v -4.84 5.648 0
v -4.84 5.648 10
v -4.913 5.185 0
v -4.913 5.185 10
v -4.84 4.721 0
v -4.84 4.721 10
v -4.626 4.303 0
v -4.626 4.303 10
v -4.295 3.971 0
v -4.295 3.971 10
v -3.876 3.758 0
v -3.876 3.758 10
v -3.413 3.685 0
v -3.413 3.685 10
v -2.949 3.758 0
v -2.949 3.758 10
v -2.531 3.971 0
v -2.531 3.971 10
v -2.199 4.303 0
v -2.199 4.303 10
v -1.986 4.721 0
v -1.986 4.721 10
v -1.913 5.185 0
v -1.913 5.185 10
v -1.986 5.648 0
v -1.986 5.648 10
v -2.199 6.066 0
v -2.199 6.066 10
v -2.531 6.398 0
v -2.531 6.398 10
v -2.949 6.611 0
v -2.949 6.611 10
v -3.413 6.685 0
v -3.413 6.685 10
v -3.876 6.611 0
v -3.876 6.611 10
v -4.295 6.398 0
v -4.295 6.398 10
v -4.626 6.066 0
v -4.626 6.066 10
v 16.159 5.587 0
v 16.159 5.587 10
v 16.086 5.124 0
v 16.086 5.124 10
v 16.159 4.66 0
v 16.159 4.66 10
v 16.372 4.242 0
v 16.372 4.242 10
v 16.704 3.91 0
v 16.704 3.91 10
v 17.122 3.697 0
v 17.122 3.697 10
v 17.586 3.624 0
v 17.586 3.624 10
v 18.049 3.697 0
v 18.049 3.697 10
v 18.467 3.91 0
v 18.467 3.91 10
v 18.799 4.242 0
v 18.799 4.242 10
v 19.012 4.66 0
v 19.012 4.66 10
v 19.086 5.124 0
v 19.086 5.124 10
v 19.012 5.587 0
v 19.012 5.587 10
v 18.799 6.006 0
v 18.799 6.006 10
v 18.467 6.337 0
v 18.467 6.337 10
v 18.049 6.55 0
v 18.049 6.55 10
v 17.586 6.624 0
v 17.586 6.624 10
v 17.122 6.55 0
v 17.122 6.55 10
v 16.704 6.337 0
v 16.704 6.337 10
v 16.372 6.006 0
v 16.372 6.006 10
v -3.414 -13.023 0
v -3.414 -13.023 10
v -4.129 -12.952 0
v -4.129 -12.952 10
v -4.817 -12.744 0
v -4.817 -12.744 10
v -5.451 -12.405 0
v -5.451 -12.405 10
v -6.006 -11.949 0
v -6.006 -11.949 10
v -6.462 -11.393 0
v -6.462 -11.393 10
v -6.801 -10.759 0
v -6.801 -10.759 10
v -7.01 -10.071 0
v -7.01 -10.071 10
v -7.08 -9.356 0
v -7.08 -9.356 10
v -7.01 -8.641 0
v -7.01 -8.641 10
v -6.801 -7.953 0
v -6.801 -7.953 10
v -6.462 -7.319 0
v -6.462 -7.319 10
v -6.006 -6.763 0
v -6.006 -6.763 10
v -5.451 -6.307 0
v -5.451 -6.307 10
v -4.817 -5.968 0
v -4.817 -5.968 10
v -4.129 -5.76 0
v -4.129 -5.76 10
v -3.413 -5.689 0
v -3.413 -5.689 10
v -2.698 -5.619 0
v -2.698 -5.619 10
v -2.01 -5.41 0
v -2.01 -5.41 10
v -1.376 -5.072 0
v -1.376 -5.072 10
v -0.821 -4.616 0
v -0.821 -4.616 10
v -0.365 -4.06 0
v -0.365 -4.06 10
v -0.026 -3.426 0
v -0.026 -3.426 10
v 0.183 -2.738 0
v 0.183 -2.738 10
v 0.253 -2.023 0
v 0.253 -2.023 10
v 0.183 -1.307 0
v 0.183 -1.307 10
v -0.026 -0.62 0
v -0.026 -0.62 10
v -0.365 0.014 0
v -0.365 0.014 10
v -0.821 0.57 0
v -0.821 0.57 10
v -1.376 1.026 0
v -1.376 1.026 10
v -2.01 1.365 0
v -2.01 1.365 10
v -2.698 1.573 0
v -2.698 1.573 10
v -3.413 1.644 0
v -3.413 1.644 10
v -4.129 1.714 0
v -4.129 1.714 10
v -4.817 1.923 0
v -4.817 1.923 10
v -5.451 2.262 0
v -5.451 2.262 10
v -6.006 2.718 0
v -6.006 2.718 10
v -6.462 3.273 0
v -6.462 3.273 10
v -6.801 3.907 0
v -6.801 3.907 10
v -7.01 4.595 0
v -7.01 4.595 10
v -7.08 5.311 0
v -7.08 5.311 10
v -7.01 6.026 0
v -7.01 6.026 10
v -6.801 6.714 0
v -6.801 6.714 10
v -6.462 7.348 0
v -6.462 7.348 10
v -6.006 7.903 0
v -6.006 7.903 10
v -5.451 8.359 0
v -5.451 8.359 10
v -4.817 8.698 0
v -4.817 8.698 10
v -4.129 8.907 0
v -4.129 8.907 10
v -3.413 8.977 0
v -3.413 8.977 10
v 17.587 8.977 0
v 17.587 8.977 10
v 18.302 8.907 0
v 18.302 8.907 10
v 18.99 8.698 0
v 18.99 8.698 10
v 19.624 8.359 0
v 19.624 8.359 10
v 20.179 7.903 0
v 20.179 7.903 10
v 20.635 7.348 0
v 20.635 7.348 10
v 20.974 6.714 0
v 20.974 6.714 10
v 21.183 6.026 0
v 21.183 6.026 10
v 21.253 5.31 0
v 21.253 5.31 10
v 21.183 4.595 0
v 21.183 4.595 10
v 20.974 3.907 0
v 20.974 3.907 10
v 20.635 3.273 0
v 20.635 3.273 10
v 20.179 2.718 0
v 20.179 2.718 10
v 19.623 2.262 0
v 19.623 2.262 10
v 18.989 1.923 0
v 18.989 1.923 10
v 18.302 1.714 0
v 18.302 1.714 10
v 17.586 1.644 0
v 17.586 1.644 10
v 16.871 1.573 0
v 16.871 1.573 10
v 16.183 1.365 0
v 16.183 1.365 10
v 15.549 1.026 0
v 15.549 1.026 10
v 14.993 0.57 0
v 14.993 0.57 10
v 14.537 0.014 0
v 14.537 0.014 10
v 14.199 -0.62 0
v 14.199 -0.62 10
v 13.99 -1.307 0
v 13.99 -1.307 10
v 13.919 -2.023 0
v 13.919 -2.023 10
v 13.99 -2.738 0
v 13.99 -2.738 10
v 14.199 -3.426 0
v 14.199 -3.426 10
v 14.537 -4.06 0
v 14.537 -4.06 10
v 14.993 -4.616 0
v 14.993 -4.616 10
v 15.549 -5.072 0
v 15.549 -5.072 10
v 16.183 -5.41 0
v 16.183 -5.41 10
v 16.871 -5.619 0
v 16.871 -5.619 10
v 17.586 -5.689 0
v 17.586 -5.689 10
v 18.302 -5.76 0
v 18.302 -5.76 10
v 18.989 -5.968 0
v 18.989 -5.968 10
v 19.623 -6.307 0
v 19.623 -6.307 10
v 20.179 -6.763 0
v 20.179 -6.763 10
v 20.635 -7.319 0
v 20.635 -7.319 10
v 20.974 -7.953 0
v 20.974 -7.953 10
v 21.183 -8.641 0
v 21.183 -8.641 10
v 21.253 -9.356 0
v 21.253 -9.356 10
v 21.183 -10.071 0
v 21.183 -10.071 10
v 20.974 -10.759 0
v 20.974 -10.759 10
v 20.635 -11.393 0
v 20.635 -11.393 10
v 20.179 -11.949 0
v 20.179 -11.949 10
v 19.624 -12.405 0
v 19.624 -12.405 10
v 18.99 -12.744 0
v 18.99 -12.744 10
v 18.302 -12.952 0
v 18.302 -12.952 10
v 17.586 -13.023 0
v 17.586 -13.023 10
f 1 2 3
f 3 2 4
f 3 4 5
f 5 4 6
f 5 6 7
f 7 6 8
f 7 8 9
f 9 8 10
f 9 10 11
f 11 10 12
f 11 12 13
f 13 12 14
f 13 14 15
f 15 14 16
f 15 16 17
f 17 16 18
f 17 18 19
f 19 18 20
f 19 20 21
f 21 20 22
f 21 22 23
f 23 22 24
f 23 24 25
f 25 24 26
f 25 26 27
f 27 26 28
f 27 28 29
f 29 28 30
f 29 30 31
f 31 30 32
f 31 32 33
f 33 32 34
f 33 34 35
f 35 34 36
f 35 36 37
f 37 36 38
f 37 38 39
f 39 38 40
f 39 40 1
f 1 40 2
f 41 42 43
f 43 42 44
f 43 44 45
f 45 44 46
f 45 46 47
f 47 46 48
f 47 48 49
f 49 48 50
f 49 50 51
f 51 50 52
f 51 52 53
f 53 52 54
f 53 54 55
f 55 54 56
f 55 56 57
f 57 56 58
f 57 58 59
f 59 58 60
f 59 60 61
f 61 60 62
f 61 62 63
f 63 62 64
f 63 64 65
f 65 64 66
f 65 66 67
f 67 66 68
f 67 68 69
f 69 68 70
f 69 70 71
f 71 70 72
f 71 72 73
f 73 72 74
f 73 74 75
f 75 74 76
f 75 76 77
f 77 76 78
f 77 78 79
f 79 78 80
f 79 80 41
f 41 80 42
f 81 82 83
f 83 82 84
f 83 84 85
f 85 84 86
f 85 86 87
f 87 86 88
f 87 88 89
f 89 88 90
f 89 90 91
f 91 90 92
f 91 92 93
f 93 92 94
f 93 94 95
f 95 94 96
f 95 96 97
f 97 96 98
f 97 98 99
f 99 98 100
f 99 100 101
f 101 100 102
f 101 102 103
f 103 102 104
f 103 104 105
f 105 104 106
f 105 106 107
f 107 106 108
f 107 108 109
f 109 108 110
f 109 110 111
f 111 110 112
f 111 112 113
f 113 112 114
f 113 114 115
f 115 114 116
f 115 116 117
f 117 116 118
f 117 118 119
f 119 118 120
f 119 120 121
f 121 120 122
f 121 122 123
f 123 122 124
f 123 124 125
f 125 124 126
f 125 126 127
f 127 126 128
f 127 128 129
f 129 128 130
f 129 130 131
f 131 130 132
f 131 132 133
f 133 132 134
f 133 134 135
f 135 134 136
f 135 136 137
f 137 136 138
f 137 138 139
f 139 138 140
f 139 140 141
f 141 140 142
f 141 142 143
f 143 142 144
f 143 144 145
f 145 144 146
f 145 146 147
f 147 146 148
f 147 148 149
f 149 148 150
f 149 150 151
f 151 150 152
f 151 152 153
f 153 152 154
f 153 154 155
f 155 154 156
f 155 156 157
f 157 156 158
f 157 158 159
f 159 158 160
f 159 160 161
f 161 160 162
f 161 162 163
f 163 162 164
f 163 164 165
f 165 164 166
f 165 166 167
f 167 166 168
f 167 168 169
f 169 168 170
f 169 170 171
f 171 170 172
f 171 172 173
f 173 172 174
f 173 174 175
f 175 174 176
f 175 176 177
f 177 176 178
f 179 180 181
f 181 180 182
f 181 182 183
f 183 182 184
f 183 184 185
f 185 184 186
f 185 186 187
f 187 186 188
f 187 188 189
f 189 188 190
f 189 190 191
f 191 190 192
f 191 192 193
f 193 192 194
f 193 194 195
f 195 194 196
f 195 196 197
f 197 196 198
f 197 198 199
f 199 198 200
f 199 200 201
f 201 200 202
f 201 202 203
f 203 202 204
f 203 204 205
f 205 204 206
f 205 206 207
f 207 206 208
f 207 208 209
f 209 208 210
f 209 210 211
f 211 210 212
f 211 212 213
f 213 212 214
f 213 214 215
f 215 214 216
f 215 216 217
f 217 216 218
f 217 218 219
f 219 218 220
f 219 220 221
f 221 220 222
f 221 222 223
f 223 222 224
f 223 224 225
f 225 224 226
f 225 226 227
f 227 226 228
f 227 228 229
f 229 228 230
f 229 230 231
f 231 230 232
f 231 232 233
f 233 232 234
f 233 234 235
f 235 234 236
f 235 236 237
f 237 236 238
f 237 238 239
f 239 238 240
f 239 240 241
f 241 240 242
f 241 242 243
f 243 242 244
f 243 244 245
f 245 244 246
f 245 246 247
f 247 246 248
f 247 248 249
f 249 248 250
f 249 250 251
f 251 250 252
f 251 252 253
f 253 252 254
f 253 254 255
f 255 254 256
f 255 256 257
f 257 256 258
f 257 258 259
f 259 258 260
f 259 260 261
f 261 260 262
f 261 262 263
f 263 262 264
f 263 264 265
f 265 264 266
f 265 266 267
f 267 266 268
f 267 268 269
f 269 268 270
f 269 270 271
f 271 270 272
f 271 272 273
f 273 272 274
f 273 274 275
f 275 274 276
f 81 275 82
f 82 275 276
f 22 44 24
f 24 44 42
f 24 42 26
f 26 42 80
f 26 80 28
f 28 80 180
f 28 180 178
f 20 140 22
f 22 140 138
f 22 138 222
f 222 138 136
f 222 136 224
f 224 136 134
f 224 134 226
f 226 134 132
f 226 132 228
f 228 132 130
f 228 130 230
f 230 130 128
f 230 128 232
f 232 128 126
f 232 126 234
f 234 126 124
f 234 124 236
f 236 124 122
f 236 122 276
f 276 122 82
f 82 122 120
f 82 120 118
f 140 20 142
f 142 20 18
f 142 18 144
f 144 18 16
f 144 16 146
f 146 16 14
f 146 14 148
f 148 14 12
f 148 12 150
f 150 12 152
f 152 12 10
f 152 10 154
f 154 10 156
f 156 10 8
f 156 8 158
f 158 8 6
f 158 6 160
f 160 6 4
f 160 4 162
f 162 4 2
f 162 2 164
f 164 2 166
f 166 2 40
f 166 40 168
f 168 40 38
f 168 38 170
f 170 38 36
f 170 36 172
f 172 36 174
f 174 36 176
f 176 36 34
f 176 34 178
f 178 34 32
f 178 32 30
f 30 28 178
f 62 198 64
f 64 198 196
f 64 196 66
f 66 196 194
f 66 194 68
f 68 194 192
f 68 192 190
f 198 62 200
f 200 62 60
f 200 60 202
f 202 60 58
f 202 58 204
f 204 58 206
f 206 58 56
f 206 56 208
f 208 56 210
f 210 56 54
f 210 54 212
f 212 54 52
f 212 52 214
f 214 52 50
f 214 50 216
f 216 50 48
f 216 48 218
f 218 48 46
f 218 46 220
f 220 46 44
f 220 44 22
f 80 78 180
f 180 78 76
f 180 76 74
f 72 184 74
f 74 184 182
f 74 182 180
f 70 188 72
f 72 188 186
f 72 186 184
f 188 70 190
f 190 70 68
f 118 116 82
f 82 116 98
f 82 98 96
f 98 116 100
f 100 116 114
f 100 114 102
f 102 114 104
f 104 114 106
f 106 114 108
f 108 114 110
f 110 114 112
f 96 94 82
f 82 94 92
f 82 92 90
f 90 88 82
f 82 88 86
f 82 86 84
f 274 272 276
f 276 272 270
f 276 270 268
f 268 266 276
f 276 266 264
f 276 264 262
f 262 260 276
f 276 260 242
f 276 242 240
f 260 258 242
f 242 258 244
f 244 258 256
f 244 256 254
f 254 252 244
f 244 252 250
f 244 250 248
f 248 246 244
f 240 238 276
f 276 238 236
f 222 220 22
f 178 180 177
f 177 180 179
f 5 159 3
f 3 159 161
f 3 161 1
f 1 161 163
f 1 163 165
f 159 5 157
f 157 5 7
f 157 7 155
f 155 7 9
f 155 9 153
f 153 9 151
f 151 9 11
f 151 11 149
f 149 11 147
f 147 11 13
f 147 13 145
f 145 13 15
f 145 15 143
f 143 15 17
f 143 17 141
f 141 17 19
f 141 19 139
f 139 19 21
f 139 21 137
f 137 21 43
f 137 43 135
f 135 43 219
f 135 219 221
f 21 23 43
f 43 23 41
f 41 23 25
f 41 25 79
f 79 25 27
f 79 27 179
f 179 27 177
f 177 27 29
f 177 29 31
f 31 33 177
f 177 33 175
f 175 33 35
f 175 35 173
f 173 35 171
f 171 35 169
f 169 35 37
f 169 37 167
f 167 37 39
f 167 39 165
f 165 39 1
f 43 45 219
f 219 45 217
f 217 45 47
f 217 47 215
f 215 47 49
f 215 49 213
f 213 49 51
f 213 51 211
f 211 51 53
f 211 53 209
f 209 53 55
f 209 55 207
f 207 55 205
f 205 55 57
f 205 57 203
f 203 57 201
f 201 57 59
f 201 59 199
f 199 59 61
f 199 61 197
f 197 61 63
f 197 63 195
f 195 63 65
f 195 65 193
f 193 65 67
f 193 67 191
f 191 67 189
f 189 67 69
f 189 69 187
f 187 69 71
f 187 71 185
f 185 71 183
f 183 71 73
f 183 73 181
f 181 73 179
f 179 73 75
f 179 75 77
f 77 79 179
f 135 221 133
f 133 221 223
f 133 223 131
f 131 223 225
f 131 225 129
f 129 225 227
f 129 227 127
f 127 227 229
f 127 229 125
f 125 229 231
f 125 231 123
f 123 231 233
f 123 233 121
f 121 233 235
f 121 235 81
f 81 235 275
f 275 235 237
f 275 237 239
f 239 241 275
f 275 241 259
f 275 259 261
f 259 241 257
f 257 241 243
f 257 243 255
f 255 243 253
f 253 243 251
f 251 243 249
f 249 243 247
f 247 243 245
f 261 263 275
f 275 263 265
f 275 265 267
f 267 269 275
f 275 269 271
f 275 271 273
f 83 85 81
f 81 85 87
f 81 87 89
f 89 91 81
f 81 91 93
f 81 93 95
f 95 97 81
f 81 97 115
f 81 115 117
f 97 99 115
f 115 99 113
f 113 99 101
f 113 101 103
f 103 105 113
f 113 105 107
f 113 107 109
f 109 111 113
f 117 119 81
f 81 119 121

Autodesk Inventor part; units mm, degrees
ref_plane "YZ Plane" through (0, 0, 0) normal (1, 0, 0) x (0, 1, 0)
ref_plane "XZ Plane" through (0, 0, 0) normal (0, 1, 0) x (-1, 0, 0)
ref_plane "XY Plane" through (0, 0, 0) normal (0, 0, 1) x (1, 0, 0)
sketch "Sketch1" plane through (0, 0, 0) normal (0, 0, 1) x (1, 0, 0)
  line L0 (-13.9136, 8.9772) -> (28.0864, 8.9772)
  line L1 (28.0864, 8.9772) -> (28.0864, -13.0228)
  line L2 (28.0864, -13.0228) -> (-13.9136, -13.0228)
  line L3 (-13.9136, -13.0228) -> (-13.9136, 8.9772)
  point P0 (0, 0)
  dimension "d0" = 42
  dimension "d1" = 22
extrude "Extrusion1" add sketch "Sketch1" along normal blind 10
sketch "Sketch2" plane through (0, 0, 10) normal (0, 0, 1) x (1, 0, 0)
  line L0 (-13.9136, -13.0228) -> (28.0864, -13.0228) projected
  arc A0 (-3.4134, -5.6894) -> (-3.4136, -13.0228) centre (-3.4136, -9.3561) ccw
  arc A1 (-3.4134, -5.6894) -> (-3.4134, 1.6439) centre (-3.4133, -2.0228) ccw
  arc A2 (17.5864, -13.0228) -> (17.5862, -5.6894) centre (17.5864, -9.3561) ccw
  arc A3 (17.5862, 1.6439) -> (17.5862, -5.6894) centre (17.586, -2.0228) ccw
  line L1 (-3.4136, -13.0228) -> (17.5864, -13.0228)
  line L2 (-3.4135, 8.9772) -> (17.5865, 8.9772)
  line L3 (28.0864, 8.9772) -> (-13.9136, 8.9772) projected
  line L4 (-3.4133, -2.0228) -> (-3.4136, -9.3561) construction
  line L5 (17.5864, -9.3561) -> (17.586, -2.0228) construction
  arc A4 (-3.4135, 8.9772) -> (-3.4134, 1.6439) centre (-3.4136, 5.3106) ccw
  arc A5 (17.5862, 1.6439) -> (17.5865, 8.9772) centre (17.5864, 5.3106) ccw
  line L6 (-3.4133, -2.0228) -> (-13.9136, -2.0228) construction
  line L7 (17.586, -2.0228) -> (28.0864, -2.0228) construction
  line L8 (28.0864, -13.0228) -> (28.0864, 8.9772) construction
  line L9 (-13.9136, 8.9772) -> (-13.9136, -13.0228) projected
  line L10 (-7.0803, -9.356) -> (-13.9136, -9.356) construction
  line L11 (21.2531, -9.356) -> (28.0864, -9.356) construction
  line L12 (-13.9136, -13.0228) -> (28.0864, -13.0228)
  line L13 (28.0864, -13.0228) -> (28.0864, 8.9772)
  line L14 (28.0864, 8.9772) -> (-13.9136, 8.9772)
  line L15 (-13.9136, 8.9772) -> (-13.9136, -13.0228)
  line L16 (-7.0803, 5.3105) -> (-13.9136, 5.3105) construction
  line L17 (21.2531, 5.3105) -> (28.0864, 5.3105) construction
  point P0 (0, 0)
  point P1 (17.8152, 8.9772)
  point P2 (-3.4136, 8.9772)
  point P3 (-3.4136, 8.9772)
  dimension "d4" = 21
  dimension "d5" = 22
  dimension "d17" = 21
extrude "Extrusion2" cut sketch "Sketch2" against normal blind 10 contours L9 L3 A4 A1 A0 L0 | A2 A3 A5 L3 L13 L0
sketch "Sketch3" plane through (0, 0, 10) normal (0, 0, 1) x (1, 0, 0)
  arc A0 (-3.4134, -5.6894) -> (-3.4134, 1.6439) centre (-3.4133, -2.0228) ccw construction
  line L0 (-7.2207, -5.6893) -> (3.1864, -5.6897) construction
  line L1 (20.3968, -5.6893) -> (9.686, -5.6898) construction
  arc A1 (-3.4134, -5.6894) -> (-3.4136, -13.0228) centre (-3.4136, -9.3561) ccw construction
  arc A2 (-3.4134, -5.6894) -> (-3.4134, 1.6439) centre (-3.4133, -2.0228) ccw construction
  arc A3 (17.5864, -13.0228) -> (17.5862, -5.6894) centre (17.5864, -9.3561) ccw construction
  arc A4 (17.5862, 1.6439) -> (17.5862, -5.6894) centre (17.586, -2.0228) ccw construction
  line L2 (-3.4137, -11.3763) -> (-3.4129, 5.1845) construction
  line L3 (17.5866, -13.0364) -> (17.5857, 5.1238) construction
  arc A5 (17.5862, 1.6439) -> (17.5862, -5.6894) centre (17.586, -2.0228) ccw construction
  point P0 (0, 0)
hole "Hole1" at (-3.4129, 5.1845, 10) at (17.5857, 5.1238, 10) direction (0, 0, -1) diameter 3 end through all
properties part number "Zipperteethv6"
